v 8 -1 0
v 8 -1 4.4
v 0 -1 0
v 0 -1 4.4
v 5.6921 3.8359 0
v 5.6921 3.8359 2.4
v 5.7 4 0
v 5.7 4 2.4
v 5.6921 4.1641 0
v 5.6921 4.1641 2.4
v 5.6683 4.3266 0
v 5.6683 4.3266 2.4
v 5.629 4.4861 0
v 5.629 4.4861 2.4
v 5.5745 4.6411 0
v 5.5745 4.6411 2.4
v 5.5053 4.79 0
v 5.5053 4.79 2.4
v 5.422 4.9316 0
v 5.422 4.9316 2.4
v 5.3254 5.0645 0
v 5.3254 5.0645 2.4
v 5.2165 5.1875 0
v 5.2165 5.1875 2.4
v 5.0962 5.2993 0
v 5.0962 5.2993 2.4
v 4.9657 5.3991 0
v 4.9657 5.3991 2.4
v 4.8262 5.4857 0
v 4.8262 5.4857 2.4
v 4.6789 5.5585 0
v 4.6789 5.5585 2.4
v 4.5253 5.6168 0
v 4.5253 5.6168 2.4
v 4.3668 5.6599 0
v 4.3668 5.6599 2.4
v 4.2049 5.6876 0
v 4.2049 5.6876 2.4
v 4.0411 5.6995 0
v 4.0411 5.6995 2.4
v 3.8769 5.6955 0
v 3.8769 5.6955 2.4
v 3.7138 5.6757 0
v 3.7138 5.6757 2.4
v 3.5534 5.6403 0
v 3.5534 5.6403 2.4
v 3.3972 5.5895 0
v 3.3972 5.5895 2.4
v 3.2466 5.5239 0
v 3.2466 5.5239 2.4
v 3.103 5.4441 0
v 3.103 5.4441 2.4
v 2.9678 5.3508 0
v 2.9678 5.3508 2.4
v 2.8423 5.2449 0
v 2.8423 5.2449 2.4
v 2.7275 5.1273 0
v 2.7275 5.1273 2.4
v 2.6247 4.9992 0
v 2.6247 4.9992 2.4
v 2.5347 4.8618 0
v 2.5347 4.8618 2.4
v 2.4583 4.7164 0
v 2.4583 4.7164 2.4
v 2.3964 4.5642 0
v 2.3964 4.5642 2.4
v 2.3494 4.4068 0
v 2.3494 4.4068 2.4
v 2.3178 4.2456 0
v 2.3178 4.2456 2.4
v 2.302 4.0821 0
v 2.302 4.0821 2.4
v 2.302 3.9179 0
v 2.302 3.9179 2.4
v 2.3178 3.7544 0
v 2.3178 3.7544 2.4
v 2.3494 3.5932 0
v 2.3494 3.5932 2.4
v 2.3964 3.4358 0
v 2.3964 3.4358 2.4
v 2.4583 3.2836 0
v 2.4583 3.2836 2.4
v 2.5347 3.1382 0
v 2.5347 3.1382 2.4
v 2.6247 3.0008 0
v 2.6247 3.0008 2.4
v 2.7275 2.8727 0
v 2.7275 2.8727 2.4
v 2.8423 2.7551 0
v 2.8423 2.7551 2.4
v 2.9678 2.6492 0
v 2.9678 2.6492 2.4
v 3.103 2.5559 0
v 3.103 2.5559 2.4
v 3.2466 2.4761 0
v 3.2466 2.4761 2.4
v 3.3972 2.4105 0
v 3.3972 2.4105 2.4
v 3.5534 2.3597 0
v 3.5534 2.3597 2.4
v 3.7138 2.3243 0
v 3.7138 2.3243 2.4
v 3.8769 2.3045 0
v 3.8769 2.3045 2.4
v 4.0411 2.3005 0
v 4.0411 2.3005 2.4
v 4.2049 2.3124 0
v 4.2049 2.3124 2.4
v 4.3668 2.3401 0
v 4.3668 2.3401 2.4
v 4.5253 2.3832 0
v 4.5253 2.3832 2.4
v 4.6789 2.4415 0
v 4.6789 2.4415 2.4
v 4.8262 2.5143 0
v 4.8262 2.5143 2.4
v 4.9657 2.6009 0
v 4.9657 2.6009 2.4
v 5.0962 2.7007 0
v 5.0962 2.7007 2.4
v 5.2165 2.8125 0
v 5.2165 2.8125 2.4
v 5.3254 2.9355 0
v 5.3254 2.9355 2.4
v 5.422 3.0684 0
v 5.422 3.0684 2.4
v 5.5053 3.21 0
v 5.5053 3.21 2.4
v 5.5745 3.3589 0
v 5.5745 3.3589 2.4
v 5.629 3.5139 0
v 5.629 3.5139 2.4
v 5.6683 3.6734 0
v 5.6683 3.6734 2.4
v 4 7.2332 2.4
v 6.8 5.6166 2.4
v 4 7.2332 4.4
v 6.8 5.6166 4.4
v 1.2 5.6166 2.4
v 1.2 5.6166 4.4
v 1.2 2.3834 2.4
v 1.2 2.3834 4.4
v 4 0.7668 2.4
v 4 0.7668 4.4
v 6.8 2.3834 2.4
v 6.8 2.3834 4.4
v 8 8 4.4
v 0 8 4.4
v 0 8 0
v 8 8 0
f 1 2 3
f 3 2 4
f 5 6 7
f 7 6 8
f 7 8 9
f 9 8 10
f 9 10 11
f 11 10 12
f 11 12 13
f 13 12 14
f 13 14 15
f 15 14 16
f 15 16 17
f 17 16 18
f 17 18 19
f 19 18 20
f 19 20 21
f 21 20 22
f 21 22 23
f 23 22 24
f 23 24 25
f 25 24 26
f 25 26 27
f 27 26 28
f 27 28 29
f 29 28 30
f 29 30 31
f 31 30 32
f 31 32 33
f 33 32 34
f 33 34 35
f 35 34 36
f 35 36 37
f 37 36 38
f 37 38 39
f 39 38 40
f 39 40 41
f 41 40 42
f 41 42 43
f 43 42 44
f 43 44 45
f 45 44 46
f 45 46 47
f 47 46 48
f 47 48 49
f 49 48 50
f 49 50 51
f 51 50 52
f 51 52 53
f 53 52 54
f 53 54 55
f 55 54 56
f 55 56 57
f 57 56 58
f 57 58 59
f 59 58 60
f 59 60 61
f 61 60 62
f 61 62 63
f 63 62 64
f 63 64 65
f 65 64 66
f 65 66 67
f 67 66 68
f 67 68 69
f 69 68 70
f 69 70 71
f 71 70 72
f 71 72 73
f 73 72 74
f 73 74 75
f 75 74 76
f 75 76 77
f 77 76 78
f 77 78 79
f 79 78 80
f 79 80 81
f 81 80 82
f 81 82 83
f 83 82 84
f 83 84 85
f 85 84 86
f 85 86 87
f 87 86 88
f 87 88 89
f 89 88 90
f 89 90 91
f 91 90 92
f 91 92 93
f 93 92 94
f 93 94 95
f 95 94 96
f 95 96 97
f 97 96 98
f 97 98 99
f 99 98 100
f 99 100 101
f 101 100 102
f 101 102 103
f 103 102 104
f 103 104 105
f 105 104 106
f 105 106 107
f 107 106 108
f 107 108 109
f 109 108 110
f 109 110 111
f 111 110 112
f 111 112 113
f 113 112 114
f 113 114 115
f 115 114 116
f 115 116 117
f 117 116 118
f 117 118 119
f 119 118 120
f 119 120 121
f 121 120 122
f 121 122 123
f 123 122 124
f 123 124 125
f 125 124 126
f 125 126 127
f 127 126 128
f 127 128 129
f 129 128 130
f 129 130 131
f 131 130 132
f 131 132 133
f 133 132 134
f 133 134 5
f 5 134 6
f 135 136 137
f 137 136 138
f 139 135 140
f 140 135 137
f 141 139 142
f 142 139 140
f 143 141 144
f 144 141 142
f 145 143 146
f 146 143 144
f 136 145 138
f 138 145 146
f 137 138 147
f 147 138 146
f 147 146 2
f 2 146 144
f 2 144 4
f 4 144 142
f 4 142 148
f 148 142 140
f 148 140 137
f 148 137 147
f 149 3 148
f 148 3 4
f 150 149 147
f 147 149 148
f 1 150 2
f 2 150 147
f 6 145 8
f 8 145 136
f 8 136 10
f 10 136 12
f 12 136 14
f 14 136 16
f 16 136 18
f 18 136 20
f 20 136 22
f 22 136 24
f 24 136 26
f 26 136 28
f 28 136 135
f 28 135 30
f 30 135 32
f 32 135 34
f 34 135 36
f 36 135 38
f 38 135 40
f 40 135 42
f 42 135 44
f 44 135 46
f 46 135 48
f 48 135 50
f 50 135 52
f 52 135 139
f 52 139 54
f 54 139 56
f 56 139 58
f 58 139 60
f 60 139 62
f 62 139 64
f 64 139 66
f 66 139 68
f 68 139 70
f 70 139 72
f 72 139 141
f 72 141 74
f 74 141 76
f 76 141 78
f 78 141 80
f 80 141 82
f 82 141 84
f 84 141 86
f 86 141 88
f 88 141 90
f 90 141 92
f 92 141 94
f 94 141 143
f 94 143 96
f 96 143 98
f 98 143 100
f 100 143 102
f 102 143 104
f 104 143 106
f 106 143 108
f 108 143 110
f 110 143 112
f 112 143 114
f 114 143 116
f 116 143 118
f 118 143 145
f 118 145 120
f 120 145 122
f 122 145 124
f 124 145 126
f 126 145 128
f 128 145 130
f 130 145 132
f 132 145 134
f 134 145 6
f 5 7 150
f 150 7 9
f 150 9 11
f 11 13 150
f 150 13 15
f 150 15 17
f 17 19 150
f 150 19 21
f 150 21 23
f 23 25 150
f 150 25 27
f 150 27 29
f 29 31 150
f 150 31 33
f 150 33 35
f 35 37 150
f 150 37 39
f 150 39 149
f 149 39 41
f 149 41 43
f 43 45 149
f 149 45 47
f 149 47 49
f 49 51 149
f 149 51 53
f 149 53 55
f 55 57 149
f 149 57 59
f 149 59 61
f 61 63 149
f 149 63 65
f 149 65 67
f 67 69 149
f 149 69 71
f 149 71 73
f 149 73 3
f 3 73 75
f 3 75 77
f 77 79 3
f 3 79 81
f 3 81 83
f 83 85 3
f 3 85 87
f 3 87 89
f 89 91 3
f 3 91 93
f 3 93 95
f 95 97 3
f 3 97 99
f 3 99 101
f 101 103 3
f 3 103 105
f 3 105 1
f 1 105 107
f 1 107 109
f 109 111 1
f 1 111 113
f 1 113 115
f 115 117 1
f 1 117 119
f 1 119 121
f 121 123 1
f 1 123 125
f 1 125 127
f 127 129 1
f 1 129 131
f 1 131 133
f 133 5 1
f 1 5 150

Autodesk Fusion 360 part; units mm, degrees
sketch "Sketch1" plane through (0, 0, 0) normal (0, 0, 1) x (1, 0, 0)
  line L0 (0, 0) -> (0, 8)
  line L1 (0, 0) -> (8, 0)
  line L2 (8, 0) -> (8, 8)
  line L3 (8, 8) -> (0, 8)
  dimension "d1" = 8
  dimension "d2" = 8
extrude "Extrude1" add sketch "Sketch1" along normal blind 2.4
sketch "Sketch2" plane through (0, 0, 2.4) normal (0, 0, 1) x (-1, 0, 0)
  line L0 (0, 0) -> (-8, 0)
  line L1 (-8, 0) -> (-8, -8)
  line L2 (-8, -8) -> (0, -8)
  line L3 (0, -8) -> (0, 0)
  line L4 (-8, -8) -> (0, 0)
  line L5 (-8, 0) -> (0, -8)
  line L6 (-6.8, -5.6166) -> (-4, -7.2332)
  line L7 (-4, -7.2332) -> (-1.2, -5.6166)
  line L8 (-1.2, -5.6166) -> (-1.2, -2.3834)
  line L9 (-1.2, -2.3834) -> (-4, -0.7668)
  line L10 (-4, -0.7668) -> (-6.8, -2.3834)
  line L11 (-6.8, -2.3834) -> (-6.8, -5.6166)
  point P0 (-4, -4)
  dimension "d5" = 2.8
extrude "Extrude2" add sketch "Sketch2" along normal blind 2 contours L0 L4 L5 L9 L10 | L3 L4 L5 L7 L8 L9 | L1 L4 L5 L6 L10 L11 | L2 L4 L5 L6 L7
sketch "Sketch3" plane through (0, 0, 2.4) normal (0, 0, 1) x (-1, 0, 0)
  line L0 (-6.8, -5.6166) -> (-4, -7.2332)
  line L1 (-4, -7.2332) -> (-1.2, -5.6166)
  line L2 (-1.2, -5.6166) -> (-1.2, -2.3834)
  line L3 (-1.2, -2.3834) -> (-4, -0.7668)
  line L4 (-4, -0.7668) -> (-6.8, -2.3834)
  line L5 (-6.8, -2.3834) -> (-6.8, -5.6166)
  circle A0 centre (-4, -4) radius 1.7
  dimension "d12" = 3.4
extrude "Extrude3" cut sketch "Sketch3" against normal blind 2.4 contours A0
sketch "Sketch4" plane through (0, 0, 0) normal (0, -1, 0) x (1, 0, 0)
  line L0 (0, 0) -> (8, 0)
  line L1 (8, 0) -> (8, 4.4)
  line L2 (8, 4.4) -> (0, 4.4)
  line L3 (0, 4.4) -> (0, 0)
  line L4 (8, 4.4) -> (0, 4.4)
  line L5 (0, 4.4) -> (0, 0)
  line L6 (0, 0) -> (8, 0)
  line L7 (8, 0) -> (8, 4.4)
extrude "Extrude4" add sketch "Sketch4" along normal blind 1
sketch "Sketch5" plane through (0, 0, 0) normal (-1, 0, 0) x (0, -1, 0)
  line L0 (-8, 0) -> (1, 0)
  line L1 (1, 0) -> (1, 4.4)
  line L2 (1, 4.4) -> (-8, 4.4)
  line L3 (-8, 4.4) -> (-8, 0)
